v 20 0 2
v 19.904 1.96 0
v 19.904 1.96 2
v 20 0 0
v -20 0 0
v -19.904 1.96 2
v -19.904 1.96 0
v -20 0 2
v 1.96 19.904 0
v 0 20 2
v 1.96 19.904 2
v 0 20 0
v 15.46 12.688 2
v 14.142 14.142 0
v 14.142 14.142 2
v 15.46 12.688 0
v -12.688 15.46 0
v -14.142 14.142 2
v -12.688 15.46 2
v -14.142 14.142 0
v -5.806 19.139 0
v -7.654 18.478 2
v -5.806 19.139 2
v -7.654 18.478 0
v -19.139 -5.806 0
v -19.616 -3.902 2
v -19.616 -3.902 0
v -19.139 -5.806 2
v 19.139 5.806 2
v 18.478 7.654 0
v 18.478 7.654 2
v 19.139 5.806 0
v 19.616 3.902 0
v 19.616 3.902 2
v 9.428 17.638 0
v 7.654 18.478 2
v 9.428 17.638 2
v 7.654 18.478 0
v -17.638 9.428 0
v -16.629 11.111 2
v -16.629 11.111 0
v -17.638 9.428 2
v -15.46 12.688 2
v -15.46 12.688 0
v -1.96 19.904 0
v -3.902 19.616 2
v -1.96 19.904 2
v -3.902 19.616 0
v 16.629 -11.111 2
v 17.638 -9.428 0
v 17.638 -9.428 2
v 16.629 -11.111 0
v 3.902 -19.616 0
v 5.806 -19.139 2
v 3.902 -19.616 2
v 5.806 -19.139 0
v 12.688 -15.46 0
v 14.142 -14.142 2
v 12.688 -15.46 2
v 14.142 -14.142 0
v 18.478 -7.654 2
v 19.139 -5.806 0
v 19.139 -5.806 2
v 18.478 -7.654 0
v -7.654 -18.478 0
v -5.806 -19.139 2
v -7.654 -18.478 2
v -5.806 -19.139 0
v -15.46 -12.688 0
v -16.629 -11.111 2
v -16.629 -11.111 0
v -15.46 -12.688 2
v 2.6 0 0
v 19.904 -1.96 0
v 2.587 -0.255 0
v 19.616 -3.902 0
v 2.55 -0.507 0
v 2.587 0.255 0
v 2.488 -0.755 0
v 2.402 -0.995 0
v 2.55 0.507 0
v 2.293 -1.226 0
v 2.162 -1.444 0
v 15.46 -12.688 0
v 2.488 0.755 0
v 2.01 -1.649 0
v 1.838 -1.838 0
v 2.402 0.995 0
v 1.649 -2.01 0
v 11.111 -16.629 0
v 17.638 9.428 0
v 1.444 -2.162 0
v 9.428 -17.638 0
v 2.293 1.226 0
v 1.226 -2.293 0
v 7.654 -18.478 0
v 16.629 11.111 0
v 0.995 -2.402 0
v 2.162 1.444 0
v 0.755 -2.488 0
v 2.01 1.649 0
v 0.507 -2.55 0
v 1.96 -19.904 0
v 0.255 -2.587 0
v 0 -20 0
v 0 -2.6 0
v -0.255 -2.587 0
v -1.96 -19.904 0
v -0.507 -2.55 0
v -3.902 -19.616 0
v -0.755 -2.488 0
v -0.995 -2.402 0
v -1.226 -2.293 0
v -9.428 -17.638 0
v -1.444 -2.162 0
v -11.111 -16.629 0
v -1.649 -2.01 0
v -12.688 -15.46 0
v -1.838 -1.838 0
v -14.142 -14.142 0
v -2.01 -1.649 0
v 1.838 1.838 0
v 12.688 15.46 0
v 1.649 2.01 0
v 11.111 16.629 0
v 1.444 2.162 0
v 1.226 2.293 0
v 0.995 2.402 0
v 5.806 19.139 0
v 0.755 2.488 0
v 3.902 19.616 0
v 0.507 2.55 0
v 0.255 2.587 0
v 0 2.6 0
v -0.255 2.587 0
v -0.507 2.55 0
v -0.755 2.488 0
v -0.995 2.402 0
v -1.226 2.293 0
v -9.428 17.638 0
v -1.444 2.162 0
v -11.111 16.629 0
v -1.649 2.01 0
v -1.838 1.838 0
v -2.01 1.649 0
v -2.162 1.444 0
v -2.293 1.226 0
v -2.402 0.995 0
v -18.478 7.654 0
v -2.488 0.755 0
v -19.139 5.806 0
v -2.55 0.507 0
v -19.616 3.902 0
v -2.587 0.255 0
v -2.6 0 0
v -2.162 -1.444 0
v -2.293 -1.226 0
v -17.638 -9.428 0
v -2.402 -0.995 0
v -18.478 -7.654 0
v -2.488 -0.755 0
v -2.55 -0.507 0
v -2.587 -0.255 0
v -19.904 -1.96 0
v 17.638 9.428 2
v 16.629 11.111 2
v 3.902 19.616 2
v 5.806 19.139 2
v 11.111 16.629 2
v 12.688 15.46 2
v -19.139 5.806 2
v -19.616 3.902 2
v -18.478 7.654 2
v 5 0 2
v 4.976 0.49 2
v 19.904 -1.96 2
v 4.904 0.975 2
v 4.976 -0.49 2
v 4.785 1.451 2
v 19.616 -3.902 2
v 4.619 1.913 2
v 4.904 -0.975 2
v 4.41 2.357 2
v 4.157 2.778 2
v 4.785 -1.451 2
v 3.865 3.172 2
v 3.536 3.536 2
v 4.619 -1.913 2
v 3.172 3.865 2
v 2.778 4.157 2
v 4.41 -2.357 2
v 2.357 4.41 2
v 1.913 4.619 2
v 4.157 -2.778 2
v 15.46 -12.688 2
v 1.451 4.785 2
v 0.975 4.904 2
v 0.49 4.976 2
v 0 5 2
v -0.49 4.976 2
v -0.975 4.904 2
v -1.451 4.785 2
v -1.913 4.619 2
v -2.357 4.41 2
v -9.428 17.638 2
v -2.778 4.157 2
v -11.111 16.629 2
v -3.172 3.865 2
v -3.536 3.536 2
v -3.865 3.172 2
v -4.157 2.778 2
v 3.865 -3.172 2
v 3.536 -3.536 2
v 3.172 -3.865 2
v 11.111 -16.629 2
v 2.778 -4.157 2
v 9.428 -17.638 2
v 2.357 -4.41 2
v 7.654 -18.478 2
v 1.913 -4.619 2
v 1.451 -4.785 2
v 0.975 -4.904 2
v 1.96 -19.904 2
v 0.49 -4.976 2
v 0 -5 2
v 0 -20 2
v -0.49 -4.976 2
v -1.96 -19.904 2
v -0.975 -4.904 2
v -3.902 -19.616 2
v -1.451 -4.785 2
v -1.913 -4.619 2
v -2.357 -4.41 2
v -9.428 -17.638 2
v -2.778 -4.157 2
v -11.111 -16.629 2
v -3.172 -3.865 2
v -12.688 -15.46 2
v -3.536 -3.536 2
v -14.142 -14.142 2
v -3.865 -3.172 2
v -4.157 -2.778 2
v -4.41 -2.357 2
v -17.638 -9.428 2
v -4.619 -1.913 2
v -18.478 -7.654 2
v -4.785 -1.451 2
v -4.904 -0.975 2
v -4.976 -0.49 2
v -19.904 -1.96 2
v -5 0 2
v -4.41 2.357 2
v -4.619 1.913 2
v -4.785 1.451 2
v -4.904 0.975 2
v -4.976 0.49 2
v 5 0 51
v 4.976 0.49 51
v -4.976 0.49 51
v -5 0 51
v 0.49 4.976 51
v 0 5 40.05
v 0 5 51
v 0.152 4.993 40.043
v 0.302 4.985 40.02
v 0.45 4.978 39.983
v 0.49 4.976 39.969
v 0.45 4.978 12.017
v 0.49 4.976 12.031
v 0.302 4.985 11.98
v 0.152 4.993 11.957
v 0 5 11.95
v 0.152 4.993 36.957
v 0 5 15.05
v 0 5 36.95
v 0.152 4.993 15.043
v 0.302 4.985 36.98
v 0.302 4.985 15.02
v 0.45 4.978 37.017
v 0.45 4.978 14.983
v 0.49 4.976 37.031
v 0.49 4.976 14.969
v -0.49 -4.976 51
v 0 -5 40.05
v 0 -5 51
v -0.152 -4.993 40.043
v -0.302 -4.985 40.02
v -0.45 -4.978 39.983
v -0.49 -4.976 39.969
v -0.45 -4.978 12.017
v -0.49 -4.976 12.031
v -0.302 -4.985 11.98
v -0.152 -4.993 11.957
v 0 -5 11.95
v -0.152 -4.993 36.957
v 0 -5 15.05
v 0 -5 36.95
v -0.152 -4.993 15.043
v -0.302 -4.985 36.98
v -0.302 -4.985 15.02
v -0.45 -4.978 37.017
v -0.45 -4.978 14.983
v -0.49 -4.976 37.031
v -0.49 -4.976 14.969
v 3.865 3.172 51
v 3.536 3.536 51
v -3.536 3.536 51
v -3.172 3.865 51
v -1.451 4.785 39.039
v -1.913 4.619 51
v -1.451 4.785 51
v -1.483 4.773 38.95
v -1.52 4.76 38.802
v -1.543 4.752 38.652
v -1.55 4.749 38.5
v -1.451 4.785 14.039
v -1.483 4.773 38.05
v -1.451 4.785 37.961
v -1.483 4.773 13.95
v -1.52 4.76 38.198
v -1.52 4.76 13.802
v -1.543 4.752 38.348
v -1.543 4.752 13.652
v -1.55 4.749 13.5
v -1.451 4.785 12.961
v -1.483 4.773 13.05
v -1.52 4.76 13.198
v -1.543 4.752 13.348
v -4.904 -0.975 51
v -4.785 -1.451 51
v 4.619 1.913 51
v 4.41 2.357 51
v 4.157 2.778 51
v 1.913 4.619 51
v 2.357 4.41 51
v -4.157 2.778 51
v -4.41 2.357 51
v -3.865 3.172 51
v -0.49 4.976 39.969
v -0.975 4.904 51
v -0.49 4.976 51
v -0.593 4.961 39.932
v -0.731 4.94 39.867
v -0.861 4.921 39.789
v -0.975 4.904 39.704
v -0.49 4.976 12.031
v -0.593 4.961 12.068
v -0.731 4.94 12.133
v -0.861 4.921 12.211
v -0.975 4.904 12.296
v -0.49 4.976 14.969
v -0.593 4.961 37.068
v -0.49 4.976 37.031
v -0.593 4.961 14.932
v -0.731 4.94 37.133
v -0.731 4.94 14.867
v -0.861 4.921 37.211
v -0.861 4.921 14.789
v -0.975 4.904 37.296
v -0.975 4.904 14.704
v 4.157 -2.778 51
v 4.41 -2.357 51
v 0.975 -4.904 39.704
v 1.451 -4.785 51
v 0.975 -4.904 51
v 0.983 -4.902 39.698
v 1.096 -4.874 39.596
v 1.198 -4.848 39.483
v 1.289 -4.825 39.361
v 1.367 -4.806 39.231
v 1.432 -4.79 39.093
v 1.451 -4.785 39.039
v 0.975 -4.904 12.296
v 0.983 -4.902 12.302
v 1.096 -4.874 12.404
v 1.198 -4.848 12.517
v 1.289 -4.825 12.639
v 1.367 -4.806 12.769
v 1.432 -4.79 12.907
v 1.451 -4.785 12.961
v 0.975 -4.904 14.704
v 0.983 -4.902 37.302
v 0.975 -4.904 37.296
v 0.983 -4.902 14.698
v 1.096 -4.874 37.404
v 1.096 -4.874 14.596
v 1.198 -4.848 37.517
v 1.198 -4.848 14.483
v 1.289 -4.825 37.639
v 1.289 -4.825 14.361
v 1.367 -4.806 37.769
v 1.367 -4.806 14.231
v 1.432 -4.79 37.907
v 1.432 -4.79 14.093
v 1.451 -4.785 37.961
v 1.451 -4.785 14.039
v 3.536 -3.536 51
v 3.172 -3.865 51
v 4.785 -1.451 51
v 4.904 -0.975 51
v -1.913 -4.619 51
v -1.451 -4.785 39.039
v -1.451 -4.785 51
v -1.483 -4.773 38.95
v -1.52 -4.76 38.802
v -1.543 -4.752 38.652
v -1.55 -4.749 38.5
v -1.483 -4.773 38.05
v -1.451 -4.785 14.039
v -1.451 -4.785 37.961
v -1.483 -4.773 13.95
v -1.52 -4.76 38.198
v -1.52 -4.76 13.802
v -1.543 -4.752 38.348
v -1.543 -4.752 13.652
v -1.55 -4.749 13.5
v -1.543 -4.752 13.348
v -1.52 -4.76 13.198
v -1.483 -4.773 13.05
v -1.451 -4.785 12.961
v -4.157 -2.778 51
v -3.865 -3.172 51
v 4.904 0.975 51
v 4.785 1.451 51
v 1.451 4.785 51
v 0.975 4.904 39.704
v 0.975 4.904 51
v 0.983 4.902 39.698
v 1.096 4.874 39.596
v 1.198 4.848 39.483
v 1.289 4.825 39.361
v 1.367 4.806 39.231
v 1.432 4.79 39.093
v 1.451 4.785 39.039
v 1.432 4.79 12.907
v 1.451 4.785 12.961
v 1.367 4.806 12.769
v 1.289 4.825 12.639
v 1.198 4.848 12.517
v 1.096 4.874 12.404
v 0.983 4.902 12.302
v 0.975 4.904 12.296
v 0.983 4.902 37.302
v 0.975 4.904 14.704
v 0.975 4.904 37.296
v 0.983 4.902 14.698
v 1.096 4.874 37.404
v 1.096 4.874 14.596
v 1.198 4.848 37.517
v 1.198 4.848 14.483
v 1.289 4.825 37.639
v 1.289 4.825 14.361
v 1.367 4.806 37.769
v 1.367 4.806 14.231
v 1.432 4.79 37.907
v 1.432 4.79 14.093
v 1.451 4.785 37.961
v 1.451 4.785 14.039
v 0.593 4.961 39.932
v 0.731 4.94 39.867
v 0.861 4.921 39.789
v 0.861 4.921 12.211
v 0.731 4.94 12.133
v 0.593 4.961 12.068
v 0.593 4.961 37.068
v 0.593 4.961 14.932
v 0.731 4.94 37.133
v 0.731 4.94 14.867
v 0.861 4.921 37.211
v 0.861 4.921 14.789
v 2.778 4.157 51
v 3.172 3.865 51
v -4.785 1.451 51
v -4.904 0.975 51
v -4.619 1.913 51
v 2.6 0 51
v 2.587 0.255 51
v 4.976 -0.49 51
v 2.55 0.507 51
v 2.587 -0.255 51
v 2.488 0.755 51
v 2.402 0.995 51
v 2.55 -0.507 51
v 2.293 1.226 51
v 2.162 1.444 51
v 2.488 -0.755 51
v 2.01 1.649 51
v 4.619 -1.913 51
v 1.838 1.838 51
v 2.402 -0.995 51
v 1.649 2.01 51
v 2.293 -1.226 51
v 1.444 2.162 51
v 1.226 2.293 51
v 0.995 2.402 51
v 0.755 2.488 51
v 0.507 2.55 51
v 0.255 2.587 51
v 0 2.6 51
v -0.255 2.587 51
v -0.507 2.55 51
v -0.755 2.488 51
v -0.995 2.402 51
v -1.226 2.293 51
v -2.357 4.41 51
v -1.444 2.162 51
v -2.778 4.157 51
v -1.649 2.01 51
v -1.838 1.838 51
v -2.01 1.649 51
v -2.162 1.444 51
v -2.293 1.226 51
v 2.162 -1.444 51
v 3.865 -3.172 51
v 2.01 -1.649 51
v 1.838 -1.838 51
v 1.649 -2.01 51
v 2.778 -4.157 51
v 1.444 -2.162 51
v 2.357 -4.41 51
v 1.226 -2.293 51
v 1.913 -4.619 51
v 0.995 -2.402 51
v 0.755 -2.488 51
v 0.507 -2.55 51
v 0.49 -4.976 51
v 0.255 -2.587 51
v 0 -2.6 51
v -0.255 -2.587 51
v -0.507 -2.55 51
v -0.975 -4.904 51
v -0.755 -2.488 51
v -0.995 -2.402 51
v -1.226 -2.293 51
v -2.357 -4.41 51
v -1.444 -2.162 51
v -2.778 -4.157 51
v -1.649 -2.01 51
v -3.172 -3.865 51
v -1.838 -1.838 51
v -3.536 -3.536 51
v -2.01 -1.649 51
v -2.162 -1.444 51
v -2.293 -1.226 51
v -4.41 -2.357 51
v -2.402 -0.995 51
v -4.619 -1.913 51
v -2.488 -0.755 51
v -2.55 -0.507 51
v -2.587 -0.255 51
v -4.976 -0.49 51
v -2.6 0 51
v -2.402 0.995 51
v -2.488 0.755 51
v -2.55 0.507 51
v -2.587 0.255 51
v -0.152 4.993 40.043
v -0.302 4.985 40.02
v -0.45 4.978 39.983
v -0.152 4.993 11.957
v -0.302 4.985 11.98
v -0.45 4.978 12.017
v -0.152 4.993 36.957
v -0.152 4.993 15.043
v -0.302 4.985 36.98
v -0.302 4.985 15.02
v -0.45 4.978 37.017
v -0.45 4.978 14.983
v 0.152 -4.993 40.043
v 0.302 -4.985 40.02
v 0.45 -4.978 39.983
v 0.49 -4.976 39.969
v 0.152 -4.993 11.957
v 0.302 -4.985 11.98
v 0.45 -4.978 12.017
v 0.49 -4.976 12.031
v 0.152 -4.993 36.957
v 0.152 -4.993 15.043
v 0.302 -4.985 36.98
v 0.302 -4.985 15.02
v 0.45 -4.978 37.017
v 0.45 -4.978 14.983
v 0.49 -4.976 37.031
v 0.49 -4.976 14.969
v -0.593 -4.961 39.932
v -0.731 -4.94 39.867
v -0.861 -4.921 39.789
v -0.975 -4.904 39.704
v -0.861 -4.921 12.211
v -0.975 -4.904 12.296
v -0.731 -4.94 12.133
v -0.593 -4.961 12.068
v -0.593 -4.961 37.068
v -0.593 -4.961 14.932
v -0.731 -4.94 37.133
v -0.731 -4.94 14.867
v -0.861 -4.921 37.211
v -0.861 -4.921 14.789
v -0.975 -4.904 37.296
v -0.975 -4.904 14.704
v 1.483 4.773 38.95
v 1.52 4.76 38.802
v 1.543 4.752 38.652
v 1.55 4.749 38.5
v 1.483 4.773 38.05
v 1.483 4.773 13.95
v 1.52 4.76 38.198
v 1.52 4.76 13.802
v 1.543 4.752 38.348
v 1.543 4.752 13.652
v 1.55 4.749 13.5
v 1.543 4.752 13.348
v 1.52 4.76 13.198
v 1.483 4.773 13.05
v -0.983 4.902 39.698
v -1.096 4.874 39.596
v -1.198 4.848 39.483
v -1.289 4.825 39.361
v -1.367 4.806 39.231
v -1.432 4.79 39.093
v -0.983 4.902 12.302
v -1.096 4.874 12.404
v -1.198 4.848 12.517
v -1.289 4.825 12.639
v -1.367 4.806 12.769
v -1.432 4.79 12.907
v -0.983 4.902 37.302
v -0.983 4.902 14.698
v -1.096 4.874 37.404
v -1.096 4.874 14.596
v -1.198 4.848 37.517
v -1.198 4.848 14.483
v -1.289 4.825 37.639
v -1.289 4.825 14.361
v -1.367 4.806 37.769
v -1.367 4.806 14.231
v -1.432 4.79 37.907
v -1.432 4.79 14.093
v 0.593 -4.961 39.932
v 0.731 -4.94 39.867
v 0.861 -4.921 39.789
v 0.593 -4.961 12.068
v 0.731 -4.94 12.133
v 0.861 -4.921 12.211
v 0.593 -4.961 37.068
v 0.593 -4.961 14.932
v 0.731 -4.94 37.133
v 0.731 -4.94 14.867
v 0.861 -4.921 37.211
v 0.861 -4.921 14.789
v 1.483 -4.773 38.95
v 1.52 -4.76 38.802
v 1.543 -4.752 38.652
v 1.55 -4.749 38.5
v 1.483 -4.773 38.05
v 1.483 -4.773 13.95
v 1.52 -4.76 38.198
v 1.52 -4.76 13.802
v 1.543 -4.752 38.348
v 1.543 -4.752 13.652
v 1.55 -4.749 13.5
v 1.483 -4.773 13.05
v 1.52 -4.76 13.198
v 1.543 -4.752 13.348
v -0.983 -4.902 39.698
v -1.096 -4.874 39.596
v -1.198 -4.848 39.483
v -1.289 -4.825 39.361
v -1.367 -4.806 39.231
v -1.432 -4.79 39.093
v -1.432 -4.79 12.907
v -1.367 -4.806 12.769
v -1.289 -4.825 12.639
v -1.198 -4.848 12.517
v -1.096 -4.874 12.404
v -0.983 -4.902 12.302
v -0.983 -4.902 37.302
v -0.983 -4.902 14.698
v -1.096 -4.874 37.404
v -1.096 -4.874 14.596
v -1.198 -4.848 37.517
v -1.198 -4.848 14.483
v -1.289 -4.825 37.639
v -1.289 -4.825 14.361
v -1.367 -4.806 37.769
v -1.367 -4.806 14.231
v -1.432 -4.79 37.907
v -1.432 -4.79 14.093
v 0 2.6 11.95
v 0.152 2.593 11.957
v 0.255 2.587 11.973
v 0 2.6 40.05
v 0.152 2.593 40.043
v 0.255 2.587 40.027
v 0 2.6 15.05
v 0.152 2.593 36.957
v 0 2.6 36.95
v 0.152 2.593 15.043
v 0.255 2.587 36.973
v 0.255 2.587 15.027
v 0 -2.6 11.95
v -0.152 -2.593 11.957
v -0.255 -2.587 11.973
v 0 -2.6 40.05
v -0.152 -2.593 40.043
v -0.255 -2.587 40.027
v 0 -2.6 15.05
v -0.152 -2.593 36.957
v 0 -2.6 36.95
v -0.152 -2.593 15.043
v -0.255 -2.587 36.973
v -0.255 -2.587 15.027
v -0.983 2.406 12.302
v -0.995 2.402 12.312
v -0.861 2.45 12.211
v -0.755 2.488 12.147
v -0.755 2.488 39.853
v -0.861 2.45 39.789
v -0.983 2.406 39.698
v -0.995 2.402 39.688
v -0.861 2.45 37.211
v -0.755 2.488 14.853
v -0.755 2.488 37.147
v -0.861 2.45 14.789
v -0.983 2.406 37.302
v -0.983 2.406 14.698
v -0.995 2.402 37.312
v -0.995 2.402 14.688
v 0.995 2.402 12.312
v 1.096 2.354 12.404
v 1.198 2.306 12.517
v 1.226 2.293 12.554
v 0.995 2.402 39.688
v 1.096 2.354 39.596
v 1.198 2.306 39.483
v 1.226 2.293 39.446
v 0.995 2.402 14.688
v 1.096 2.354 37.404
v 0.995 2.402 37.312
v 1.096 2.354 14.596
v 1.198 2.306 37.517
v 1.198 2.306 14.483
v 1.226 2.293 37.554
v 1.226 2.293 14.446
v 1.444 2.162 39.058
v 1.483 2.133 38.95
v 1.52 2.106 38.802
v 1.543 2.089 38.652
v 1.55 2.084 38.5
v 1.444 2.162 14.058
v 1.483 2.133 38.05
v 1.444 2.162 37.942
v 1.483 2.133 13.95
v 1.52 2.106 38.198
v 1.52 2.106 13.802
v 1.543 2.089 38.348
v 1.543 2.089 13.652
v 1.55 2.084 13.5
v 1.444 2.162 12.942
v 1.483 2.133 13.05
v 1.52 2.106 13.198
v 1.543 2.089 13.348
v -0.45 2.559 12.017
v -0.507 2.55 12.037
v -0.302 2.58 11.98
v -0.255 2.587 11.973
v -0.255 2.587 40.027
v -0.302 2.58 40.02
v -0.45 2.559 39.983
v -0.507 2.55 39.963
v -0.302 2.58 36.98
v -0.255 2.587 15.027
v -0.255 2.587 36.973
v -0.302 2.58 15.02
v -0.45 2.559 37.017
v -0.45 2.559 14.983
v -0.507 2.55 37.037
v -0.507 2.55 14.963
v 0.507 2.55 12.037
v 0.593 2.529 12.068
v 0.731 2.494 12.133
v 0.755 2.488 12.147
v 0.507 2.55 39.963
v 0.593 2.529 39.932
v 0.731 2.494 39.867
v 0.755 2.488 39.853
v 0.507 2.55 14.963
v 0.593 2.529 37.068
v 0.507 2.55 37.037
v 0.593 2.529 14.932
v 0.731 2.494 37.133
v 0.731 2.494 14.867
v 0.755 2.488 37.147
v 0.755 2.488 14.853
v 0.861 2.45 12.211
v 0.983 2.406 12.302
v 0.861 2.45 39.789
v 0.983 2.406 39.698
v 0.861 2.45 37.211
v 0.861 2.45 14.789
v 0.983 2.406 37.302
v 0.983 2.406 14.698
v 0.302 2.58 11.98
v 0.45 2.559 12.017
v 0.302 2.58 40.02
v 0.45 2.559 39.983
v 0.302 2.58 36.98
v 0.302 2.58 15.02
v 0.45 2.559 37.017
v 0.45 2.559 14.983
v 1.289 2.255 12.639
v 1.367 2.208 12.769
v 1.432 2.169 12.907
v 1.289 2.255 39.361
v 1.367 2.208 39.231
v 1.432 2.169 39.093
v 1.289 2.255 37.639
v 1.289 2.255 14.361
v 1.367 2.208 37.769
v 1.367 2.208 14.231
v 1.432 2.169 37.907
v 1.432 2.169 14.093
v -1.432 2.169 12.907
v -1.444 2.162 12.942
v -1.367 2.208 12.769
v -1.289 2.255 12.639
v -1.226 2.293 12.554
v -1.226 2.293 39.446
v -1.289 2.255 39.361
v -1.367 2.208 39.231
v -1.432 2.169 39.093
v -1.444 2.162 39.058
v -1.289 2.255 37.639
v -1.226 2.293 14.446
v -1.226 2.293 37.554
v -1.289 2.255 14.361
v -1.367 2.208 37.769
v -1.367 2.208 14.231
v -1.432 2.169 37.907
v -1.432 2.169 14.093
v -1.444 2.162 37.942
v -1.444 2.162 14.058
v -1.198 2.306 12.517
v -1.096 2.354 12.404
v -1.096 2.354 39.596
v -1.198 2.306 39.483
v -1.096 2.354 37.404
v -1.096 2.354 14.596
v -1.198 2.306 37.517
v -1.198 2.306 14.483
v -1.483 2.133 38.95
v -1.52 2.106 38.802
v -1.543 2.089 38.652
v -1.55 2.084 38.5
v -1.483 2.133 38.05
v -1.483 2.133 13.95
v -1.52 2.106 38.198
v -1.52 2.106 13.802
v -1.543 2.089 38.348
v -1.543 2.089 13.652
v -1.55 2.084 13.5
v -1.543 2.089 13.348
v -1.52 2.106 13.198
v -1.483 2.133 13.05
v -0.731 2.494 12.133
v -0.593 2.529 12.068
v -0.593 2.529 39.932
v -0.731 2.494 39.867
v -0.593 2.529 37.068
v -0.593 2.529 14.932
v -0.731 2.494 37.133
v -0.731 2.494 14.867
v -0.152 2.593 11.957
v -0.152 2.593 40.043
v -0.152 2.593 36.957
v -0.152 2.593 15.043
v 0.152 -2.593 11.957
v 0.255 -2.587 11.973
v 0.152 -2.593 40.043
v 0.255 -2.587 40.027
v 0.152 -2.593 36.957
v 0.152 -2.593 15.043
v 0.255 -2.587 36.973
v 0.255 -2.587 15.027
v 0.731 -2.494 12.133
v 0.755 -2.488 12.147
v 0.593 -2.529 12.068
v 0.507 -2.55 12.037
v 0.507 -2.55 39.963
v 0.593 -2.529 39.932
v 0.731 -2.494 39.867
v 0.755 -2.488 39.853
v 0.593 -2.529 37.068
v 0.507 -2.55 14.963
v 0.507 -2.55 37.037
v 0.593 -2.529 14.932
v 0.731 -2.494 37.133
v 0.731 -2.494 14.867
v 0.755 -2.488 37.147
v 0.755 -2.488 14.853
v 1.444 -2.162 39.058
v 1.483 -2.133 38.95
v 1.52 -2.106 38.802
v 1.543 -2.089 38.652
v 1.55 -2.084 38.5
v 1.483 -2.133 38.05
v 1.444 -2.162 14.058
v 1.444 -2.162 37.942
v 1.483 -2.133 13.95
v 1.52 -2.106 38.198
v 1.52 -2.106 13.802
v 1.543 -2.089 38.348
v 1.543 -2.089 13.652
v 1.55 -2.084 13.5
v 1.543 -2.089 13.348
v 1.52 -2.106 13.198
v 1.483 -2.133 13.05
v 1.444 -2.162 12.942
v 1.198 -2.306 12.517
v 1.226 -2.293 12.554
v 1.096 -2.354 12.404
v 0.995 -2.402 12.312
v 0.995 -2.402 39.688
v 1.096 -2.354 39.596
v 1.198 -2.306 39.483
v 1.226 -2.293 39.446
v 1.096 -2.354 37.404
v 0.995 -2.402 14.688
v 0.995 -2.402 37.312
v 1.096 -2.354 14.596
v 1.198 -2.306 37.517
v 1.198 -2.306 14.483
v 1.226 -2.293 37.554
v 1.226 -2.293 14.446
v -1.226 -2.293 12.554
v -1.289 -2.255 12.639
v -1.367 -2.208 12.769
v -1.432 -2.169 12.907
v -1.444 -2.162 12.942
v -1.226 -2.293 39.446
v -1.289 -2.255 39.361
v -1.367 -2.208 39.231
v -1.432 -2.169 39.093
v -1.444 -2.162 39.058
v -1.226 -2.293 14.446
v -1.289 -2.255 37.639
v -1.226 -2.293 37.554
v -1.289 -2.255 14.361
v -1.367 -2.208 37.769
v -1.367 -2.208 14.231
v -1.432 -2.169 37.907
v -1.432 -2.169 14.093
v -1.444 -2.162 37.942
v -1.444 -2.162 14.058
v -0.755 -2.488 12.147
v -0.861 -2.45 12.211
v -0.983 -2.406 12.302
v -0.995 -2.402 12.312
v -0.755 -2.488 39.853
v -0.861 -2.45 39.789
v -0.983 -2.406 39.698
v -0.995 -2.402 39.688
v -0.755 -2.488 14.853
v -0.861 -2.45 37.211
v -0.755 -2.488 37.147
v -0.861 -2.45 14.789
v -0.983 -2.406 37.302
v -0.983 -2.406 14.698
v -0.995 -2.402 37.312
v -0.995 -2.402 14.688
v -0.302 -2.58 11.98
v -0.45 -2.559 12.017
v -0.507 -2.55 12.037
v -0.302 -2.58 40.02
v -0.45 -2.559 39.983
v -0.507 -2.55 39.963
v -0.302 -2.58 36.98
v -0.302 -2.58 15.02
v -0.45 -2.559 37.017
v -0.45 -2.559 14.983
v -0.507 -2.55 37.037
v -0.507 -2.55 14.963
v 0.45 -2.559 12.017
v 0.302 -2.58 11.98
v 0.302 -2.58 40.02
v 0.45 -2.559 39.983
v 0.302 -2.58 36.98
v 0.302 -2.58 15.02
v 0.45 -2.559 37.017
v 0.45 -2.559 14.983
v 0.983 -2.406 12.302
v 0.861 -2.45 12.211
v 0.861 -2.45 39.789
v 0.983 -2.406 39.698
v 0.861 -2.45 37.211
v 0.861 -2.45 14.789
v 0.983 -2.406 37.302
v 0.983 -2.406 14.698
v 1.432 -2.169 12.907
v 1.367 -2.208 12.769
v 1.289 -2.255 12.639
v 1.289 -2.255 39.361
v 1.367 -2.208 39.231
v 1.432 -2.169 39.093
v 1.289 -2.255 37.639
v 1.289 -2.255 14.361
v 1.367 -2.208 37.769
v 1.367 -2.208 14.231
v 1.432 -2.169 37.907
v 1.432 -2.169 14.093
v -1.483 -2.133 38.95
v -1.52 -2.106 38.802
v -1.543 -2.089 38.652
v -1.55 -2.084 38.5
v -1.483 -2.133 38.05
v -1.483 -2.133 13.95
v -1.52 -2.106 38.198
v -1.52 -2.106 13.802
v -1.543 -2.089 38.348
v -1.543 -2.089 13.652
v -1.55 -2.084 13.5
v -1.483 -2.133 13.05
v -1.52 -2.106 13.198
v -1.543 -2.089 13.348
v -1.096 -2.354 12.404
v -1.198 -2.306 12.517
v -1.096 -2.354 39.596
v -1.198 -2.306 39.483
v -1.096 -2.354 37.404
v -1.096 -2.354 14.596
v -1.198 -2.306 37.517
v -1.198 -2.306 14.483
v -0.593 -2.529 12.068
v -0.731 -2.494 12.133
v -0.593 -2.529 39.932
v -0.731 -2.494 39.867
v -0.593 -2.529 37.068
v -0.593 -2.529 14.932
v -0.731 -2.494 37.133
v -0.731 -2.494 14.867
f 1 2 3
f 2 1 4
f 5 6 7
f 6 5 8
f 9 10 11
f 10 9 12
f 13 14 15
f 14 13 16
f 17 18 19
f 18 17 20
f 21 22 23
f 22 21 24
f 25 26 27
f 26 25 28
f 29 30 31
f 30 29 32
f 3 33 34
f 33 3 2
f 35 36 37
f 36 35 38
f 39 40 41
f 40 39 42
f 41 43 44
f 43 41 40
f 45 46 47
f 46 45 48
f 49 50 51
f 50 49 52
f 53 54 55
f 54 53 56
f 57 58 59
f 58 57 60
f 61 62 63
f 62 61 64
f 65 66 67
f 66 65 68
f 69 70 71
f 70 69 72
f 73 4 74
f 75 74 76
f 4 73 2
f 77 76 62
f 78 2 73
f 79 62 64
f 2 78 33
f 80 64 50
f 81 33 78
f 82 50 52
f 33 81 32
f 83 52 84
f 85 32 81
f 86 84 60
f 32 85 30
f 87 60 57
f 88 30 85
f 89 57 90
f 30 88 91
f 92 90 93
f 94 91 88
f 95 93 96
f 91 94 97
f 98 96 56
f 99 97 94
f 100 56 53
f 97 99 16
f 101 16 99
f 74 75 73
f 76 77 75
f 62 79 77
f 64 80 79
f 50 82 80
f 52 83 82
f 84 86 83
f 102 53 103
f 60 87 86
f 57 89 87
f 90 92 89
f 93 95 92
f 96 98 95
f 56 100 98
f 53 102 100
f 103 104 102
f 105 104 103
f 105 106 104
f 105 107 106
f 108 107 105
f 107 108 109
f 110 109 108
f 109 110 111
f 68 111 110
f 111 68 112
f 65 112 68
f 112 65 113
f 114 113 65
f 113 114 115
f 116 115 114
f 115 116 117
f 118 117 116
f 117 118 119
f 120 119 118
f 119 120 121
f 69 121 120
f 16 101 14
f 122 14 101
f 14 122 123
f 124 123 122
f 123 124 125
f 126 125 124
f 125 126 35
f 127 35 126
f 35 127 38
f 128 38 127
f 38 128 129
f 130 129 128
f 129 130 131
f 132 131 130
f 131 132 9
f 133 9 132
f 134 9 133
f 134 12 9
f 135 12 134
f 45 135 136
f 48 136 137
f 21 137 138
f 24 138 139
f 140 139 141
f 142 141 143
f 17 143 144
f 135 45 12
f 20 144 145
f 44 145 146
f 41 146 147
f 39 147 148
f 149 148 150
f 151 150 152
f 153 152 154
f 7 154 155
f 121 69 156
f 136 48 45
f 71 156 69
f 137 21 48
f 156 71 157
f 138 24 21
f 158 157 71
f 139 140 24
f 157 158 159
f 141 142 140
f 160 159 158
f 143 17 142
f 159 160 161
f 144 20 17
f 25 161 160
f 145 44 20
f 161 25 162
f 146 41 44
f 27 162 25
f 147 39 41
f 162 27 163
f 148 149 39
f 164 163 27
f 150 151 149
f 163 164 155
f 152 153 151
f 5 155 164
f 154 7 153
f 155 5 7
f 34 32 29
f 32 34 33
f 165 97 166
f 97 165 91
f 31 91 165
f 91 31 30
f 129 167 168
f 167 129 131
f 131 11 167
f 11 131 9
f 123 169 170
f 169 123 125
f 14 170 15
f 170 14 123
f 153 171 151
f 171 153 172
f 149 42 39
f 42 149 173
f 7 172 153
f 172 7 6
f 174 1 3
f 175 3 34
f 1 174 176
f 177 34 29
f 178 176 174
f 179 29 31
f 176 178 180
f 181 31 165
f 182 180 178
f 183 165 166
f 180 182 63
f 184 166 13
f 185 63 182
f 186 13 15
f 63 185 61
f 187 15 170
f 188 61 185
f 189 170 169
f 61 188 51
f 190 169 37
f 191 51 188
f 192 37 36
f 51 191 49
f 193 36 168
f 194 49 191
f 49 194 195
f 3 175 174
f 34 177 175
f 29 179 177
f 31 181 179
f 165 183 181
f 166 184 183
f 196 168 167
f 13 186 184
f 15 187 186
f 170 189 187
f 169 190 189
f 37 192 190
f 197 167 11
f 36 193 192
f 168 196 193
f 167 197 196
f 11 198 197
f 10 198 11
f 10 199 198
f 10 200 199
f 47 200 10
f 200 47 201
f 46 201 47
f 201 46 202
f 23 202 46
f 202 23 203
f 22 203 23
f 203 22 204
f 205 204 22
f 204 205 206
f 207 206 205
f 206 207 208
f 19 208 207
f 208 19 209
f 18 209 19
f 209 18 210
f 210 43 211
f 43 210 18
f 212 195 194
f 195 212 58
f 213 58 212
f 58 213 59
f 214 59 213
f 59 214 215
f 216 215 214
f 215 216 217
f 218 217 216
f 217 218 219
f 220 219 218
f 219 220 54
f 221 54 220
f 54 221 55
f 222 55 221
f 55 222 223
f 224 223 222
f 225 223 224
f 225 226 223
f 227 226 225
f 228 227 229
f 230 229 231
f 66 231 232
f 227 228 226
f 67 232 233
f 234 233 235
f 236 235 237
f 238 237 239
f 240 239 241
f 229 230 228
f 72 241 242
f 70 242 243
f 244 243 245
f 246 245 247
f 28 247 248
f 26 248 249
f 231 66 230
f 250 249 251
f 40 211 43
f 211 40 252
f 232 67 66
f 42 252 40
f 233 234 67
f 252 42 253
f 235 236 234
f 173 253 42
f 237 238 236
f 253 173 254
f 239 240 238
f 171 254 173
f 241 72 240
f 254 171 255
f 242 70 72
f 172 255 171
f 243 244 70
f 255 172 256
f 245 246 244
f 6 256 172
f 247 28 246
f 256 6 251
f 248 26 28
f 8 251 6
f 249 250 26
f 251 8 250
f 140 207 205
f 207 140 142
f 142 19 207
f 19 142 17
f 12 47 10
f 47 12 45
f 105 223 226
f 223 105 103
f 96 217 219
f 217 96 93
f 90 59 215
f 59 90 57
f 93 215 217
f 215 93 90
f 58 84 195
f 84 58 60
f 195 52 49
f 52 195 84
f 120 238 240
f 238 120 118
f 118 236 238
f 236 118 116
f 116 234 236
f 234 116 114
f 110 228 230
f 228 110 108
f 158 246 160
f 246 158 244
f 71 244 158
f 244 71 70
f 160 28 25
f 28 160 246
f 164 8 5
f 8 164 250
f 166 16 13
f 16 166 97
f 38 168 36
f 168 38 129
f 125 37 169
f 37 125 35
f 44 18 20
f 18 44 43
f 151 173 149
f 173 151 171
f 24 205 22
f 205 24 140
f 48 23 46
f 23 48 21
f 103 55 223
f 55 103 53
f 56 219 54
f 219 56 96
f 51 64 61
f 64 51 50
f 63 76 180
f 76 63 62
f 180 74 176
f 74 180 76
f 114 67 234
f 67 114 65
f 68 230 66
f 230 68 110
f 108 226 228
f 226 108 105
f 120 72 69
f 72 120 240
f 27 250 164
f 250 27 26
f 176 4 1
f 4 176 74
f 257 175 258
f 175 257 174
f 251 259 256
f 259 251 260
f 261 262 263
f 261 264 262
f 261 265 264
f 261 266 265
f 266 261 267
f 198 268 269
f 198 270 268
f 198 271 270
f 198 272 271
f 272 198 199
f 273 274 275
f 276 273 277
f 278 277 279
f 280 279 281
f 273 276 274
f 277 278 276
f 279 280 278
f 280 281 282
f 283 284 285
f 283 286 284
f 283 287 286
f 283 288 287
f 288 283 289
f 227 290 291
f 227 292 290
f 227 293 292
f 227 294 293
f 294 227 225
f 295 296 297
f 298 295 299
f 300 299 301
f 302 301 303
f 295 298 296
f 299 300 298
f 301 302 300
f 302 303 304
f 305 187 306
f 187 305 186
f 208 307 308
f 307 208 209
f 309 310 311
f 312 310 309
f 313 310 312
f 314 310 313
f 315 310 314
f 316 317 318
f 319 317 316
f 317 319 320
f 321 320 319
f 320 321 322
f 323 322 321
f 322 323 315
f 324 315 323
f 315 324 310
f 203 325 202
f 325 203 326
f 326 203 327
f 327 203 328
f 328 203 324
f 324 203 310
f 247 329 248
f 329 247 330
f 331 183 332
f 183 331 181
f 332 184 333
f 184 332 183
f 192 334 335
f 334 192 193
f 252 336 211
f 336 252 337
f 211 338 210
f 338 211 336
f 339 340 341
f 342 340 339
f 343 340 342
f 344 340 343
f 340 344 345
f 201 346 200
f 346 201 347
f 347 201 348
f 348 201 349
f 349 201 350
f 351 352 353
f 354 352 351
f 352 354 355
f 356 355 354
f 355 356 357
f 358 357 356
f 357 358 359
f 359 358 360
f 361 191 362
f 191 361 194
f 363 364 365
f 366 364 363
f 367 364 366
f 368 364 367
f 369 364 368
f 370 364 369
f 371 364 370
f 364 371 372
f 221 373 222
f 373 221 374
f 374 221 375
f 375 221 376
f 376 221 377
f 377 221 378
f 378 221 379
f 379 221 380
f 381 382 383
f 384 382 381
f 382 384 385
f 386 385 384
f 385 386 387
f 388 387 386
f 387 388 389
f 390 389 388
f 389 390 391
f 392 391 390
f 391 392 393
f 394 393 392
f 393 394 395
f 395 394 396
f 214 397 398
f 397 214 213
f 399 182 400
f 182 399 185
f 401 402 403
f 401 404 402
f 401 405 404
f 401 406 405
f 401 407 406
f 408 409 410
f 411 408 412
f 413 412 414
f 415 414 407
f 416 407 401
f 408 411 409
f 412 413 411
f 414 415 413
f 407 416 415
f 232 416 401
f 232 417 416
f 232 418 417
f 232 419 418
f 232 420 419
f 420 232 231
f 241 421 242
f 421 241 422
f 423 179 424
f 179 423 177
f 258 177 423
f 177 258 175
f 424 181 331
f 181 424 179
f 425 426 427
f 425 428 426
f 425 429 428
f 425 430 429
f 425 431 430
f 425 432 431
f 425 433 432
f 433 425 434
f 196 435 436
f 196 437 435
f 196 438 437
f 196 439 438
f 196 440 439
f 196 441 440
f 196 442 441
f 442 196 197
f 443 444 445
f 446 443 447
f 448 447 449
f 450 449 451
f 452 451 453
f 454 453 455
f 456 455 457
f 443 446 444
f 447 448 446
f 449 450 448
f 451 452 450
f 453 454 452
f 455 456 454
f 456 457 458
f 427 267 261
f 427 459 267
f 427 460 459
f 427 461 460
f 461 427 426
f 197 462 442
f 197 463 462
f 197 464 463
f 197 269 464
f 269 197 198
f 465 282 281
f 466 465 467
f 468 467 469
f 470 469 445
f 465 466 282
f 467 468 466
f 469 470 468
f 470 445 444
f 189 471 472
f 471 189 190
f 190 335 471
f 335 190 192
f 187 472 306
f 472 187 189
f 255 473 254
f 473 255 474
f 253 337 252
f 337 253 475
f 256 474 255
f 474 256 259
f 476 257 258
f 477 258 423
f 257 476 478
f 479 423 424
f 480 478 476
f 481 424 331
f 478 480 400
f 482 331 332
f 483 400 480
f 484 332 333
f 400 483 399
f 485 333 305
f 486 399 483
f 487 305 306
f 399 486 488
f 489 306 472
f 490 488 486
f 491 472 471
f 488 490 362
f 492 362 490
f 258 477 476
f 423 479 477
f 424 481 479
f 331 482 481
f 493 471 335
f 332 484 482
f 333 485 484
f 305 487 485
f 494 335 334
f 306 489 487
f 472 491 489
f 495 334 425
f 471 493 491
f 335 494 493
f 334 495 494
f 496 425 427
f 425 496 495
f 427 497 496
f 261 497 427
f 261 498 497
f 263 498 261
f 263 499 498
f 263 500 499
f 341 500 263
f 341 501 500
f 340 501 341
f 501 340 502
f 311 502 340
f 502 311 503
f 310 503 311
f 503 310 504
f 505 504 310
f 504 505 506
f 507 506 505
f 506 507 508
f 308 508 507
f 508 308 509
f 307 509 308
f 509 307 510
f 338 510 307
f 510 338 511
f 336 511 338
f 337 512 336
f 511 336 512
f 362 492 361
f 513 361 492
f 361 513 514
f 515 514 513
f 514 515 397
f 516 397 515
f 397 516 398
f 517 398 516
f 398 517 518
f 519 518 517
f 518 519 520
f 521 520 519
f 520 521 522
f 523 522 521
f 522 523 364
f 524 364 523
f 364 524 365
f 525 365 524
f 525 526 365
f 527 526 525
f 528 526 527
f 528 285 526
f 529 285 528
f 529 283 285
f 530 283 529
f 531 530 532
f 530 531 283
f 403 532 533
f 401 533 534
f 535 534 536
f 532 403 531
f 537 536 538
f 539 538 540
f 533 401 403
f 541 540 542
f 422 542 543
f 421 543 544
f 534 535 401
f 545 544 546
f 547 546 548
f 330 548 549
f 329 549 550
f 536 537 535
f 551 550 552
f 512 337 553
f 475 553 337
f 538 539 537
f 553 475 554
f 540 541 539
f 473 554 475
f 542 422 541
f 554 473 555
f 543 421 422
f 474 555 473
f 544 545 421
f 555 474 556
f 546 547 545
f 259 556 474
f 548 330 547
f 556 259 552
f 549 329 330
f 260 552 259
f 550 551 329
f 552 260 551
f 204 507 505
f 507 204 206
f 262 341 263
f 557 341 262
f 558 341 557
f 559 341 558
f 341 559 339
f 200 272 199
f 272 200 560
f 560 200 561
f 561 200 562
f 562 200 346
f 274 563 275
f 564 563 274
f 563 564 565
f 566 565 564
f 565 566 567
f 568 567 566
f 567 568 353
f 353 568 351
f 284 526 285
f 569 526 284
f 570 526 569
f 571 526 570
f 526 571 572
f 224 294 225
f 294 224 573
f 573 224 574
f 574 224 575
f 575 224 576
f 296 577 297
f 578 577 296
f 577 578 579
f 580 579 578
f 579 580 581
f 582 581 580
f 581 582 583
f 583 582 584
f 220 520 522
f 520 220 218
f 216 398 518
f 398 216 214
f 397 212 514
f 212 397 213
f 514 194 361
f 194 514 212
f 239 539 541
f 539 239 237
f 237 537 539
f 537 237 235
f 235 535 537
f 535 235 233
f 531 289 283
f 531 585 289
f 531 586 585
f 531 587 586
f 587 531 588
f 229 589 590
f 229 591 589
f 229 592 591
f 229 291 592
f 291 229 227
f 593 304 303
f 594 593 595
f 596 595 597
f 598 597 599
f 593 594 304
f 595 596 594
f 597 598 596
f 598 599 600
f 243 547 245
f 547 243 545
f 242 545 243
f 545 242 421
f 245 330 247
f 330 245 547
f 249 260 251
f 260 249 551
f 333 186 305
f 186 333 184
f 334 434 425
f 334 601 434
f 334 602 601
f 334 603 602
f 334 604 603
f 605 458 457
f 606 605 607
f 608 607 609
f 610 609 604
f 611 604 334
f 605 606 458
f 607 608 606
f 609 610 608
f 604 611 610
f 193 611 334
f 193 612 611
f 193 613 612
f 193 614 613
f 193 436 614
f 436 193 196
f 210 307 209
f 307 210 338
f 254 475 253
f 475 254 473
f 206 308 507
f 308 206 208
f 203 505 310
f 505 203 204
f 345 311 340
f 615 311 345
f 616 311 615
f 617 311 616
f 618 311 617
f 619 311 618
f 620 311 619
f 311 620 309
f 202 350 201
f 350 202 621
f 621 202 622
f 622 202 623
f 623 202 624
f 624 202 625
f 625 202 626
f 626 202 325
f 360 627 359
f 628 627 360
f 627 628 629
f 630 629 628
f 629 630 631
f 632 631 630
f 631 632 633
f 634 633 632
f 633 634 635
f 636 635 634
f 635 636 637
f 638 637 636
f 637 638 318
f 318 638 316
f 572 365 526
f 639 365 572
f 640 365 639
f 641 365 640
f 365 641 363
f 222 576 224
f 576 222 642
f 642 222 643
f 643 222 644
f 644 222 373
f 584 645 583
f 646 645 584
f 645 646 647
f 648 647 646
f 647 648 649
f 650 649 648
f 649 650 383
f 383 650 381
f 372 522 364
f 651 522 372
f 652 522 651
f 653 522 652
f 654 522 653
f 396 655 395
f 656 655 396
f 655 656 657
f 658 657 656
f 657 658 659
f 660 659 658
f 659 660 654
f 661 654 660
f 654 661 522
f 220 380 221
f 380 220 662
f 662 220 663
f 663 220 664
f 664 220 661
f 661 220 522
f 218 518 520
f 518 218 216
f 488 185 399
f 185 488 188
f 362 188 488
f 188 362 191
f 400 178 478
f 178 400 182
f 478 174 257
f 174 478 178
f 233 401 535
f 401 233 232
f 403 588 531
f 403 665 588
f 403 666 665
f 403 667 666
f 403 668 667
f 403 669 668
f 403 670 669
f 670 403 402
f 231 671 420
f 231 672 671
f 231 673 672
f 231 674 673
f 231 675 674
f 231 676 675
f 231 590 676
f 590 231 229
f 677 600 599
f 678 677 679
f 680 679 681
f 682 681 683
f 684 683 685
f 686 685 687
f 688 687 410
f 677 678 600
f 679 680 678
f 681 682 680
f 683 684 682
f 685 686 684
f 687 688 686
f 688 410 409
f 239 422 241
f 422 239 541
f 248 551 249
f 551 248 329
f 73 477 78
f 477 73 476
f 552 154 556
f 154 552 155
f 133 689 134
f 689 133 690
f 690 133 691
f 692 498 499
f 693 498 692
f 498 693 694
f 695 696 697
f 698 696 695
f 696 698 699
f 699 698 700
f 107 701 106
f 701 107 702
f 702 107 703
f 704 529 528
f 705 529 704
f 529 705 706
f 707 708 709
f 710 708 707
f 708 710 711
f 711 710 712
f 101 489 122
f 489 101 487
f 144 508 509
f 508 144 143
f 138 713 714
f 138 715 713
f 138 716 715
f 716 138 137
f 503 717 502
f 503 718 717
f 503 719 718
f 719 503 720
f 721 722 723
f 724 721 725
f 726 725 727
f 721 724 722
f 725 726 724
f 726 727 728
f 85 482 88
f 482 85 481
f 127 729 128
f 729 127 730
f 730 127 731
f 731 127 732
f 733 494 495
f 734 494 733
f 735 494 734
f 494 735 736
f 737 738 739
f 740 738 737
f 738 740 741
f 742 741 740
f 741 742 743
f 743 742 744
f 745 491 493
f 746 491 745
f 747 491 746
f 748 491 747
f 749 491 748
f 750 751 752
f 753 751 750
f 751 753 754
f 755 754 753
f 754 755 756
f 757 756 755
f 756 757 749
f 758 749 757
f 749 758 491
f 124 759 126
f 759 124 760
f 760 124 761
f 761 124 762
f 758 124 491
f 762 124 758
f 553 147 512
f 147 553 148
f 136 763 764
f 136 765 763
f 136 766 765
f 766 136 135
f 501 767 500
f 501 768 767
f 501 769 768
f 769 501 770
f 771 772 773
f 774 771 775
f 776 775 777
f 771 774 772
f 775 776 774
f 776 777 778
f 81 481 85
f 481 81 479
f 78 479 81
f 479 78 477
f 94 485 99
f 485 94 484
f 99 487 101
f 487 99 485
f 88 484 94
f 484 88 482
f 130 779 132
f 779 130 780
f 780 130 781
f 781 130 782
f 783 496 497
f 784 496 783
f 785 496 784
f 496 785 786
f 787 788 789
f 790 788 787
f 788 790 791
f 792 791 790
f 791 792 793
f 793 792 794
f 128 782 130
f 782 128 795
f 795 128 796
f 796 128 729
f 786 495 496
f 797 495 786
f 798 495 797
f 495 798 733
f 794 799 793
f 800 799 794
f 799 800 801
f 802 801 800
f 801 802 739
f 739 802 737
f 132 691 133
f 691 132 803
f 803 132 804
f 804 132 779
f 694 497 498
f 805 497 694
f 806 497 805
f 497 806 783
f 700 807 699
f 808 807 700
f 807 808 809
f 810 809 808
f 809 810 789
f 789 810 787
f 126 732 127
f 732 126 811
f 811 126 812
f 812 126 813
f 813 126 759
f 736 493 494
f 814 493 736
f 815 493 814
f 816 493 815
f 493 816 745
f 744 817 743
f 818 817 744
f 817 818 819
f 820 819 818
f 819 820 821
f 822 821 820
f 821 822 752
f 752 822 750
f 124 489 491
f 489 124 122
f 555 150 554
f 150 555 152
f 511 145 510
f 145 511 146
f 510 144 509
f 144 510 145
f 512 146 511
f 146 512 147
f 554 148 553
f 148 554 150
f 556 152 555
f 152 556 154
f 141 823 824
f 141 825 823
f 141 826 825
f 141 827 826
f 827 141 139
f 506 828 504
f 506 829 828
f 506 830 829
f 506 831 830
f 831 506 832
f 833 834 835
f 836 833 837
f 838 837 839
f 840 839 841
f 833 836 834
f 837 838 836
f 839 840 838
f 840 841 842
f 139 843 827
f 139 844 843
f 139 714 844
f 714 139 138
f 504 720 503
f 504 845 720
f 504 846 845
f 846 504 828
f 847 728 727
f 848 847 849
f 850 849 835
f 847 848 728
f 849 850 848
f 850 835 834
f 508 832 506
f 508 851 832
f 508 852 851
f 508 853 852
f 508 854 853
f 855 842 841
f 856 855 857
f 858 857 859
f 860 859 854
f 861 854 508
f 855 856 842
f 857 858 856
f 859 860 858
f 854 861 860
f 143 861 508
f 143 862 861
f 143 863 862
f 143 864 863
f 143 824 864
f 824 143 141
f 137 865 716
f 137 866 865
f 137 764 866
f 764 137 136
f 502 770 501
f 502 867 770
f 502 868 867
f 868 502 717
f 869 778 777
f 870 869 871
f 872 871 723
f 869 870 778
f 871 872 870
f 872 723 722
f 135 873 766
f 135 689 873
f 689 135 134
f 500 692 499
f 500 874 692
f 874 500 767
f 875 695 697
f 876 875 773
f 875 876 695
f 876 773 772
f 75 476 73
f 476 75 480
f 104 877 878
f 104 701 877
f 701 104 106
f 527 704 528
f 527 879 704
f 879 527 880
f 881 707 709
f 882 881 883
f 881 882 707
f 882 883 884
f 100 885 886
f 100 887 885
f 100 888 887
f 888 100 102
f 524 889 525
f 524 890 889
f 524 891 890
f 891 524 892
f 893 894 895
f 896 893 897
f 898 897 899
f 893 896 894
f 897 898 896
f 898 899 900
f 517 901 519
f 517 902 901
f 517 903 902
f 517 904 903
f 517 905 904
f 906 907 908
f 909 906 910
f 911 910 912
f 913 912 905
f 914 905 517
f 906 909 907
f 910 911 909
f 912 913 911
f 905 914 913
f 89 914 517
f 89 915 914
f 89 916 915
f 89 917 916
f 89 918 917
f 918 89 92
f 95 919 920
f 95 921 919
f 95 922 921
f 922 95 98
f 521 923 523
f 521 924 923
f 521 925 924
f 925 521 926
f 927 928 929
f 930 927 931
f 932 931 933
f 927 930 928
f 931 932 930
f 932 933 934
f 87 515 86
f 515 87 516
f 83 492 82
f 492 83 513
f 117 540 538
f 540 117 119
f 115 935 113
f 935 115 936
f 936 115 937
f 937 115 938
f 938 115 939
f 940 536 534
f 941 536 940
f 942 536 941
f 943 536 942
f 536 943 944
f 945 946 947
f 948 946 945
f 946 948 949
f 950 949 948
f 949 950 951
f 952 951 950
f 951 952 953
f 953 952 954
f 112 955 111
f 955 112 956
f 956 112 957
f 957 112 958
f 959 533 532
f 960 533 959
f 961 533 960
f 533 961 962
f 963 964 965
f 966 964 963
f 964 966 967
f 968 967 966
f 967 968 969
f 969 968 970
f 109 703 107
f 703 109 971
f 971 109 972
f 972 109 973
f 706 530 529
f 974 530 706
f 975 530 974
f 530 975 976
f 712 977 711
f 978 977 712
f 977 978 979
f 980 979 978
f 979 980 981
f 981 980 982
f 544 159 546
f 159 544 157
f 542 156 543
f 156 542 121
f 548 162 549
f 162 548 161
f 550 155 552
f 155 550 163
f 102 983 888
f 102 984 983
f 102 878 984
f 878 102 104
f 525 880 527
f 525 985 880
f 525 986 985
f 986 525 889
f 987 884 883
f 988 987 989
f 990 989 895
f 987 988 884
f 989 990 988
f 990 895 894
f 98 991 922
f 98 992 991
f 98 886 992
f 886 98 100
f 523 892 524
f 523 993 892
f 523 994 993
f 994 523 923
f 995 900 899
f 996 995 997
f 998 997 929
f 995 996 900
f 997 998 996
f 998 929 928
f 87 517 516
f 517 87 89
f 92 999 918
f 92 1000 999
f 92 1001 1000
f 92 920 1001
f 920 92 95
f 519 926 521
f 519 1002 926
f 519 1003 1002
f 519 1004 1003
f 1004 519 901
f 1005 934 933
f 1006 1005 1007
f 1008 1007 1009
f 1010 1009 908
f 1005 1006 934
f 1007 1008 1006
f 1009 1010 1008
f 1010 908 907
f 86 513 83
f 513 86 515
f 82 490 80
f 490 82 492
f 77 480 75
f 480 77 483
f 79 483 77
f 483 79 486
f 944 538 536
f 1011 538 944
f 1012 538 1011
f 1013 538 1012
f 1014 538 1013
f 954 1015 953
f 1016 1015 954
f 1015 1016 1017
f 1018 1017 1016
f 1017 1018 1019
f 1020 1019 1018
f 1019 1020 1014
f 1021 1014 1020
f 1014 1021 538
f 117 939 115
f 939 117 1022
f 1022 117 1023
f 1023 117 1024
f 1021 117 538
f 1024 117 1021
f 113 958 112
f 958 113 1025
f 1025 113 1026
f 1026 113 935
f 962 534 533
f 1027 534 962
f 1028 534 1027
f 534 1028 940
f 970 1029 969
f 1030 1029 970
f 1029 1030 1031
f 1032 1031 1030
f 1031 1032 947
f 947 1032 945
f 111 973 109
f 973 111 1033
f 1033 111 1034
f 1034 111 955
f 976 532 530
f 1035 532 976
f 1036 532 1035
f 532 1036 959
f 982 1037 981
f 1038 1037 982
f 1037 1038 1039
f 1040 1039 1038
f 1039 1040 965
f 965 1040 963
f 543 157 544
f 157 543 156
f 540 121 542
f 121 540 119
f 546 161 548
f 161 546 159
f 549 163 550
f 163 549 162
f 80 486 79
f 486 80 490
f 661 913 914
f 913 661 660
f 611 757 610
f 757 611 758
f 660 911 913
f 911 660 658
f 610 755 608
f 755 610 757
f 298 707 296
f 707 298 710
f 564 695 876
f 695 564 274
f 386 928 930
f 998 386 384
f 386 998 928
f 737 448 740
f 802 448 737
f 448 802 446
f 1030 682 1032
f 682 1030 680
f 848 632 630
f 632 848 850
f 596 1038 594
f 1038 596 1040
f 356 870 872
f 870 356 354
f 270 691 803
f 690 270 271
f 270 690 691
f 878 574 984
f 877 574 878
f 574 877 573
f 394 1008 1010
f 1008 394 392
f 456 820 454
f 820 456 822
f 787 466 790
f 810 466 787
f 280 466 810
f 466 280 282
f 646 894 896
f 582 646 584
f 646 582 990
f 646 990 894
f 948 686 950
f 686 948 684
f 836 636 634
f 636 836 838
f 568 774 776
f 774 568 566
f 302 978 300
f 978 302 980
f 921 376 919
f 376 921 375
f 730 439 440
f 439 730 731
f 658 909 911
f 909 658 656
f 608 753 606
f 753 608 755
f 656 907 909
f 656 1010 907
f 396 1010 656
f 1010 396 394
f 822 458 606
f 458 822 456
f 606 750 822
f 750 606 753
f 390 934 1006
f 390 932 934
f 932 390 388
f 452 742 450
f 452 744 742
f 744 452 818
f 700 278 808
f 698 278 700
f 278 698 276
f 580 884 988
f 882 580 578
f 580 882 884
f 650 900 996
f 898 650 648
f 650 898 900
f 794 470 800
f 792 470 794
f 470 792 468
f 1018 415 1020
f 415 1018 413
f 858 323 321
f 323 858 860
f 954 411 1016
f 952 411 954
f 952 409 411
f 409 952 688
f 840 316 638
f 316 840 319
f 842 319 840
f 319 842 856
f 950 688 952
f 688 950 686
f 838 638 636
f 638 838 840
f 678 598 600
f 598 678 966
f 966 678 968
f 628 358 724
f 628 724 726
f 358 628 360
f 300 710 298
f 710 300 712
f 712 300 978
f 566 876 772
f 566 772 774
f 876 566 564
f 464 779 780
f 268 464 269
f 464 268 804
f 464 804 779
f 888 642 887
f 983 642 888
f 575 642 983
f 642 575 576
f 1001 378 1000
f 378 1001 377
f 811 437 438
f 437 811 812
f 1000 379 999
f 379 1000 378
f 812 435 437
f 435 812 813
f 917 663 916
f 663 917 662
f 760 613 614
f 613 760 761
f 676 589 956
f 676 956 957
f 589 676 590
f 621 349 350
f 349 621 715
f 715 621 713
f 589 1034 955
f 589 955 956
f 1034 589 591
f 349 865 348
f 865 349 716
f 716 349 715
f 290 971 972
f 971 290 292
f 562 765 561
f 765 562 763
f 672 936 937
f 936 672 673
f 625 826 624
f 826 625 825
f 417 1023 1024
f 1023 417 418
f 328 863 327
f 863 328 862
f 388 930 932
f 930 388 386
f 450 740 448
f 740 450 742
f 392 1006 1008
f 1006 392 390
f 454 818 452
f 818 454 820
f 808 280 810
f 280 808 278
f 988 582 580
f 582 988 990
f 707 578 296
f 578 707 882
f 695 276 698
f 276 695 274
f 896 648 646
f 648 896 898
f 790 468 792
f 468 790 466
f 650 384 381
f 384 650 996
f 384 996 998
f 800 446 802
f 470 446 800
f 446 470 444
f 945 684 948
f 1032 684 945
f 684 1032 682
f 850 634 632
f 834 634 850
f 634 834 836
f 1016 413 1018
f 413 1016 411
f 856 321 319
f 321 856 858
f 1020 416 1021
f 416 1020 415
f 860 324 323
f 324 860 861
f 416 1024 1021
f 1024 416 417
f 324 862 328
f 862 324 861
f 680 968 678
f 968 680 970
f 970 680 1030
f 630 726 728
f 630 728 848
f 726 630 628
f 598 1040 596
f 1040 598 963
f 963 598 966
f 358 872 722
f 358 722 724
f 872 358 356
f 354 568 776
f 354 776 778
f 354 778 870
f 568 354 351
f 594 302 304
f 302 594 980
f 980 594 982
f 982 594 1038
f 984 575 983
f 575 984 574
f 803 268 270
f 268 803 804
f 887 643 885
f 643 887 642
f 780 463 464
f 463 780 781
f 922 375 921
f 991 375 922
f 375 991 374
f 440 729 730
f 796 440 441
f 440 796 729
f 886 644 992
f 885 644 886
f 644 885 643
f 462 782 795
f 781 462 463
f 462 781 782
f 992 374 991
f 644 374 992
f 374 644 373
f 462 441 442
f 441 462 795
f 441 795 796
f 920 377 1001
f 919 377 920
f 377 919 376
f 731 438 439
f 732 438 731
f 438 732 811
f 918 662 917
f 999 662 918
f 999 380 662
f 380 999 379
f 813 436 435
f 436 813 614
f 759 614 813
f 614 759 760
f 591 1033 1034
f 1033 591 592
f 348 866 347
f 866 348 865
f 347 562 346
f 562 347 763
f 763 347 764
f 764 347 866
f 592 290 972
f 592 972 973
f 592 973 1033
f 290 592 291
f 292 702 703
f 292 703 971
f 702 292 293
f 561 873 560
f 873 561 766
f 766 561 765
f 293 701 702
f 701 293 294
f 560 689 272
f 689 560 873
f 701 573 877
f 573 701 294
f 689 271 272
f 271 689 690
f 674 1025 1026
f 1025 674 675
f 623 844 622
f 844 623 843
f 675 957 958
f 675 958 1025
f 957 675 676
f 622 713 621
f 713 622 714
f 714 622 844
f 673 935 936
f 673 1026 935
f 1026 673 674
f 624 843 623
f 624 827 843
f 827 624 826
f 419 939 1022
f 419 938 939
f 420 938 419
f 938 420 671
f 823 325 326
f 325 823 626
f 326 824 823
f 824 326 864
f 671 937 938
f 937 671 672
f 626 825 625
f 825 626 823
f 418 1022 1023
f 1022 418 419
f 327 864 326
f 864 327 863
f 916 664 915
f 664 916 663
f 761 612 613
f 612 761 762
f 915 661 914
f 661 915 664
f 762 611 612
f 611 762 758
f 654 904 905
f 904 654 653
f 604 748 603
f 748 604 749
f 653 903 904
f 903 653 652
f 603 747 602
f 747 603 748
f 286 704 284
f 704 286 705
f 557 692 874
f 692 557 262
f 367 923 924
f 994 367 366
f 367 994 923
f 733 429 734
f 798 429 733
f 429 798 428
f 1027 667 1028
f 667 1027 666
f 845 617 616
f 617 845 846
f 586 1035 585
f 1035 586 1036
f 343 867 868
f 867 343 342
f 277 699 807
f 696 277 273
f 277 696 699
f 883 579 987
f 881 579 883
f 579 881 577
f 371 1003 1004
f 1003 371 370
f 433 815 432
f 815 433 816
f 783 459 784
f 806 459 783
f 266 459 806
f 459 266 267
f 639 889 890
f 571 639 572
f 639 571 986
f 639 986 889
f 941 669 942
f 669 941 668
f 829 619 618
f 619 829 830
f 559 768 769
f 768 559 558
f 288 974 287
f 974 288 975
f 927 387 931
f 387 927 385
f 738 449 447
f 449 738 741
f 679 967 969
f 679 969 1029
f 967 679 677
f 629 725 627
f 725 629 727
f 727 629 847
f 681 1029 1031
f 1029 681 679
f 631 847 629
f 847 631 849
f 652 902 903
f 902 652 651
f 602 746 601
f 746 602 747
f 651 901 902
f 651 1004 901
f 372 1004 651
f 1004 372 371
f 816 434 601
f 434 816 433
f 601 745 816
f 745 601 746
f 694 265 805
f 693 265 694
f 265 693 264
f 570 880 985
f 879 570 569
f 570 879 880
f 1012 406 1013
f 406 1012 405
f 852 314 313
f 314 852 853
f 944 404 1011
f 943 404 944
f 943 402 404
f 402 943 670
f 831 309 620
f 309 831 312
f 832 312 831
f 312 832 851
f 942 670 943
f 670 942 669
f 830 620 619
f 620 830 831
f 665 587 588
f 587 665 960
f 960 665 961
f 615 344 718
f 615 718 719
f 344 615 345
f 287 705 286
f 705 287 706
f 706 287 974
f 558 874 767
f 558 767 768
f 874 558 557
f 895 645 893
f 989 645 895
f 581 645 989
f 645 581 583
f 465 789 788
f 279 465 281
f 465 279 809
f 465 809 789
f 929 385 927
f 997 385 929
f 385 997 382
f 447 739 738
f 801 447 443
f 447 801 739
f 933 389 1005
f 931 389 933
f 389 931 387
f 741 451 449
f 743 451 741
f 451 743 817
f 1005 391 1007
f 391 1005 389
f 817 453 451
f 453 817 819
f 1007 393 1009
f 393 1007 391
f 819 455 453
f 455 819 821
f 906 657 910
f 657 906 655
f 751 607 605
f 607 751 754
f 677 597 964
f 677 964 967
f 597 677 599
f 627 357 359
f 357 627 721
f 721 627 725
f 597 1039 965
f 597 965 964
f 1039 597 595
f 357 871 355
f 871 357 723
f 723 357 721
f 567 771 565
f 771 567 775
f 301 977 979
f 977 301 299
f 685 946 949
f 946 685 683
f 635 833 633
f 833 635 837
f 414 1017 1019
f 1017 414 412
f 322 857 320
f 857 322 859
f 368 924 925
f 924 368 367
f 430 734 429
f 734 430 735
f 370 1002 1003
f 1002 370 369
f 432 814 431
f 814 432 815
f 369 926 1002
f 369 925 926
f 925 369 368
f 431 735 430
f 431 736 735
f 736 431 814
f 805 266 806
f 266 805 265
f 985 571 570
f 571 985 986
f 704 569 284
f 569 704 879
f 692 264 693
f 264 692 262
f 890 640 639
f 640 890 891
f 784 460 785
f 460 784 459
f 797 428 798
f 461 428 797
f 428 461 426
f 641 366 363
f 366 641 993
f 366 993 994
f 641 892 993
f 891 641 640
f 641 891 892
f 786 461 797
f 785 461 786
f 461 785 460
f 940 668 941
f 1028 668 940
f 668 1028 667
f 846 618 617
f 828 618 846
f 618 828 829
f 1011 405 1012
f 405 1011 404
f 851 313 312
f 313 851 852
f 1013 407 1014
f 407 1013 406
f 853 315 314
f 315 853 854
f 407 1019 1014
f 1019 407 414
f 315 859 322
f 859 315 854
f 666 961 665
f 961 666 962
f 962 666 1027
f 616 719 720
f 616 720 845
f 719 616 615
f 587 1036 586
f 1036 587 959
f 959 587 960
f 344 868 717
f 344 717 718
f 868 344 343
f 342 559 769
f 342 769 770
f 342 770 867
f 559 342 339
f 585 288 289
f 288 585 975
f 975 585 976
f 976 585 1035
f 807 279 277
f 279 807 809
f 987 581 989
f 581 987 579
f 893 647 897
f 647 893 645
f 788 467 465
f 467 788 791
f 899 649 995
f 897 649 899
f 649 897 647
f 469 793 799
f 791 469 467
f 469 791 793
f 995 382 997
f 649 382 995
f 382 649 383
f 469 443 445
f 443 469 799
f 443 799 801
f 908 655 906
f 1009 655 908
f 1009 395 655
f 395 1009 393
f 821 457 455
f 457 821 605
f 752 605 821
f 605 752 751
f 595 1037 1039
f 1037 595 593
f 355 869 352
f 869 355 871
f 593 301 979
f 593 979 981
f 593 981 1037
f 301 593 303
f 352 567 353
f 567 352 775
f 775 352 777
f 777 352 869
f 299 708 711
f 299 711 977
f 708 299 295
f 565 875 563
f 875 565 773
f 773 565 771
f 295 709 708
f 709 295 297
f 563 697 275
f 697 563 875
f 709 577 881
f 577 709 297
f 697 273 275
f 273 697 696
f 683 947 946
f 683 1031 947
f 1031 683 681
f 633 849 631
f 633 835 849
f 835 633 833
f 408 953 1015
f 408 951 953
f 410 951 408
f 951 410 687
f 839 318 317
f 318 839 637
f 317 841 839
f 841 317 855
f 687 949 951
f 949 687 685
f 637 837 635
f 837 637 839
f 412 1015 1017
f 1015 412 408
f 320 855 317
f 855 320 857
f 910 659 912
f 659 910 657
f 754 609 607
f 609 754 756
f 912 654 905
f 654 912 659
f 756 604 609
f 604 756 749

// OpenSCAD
$fn = 64;
module hole_3m(){
    rotate([90,0,0]){
translate([0,0,50/2])
cylinder(h=100,d = 3.1, center = true);}
translate([0,0,1]){
}
}

module spool(){
cylinder(h = 2, d= 40, center = true);
//#translate([0,0,50])
//#cylinder(h = 2, d= 40, center = true);
translate([0,0,50/2])
cylinder(h=50,d = 10, center = true);
}

module hole(){
translate([0,0,50/2])
cylinder(h=100,d = 5.2, center = true);}
translate([0,0,1]){

difference(){
spool();
hole();   
    translate([0,0,50/4])
hole_3m();
        translate([0,0,3*50/4])
hole_3m();
}
}
